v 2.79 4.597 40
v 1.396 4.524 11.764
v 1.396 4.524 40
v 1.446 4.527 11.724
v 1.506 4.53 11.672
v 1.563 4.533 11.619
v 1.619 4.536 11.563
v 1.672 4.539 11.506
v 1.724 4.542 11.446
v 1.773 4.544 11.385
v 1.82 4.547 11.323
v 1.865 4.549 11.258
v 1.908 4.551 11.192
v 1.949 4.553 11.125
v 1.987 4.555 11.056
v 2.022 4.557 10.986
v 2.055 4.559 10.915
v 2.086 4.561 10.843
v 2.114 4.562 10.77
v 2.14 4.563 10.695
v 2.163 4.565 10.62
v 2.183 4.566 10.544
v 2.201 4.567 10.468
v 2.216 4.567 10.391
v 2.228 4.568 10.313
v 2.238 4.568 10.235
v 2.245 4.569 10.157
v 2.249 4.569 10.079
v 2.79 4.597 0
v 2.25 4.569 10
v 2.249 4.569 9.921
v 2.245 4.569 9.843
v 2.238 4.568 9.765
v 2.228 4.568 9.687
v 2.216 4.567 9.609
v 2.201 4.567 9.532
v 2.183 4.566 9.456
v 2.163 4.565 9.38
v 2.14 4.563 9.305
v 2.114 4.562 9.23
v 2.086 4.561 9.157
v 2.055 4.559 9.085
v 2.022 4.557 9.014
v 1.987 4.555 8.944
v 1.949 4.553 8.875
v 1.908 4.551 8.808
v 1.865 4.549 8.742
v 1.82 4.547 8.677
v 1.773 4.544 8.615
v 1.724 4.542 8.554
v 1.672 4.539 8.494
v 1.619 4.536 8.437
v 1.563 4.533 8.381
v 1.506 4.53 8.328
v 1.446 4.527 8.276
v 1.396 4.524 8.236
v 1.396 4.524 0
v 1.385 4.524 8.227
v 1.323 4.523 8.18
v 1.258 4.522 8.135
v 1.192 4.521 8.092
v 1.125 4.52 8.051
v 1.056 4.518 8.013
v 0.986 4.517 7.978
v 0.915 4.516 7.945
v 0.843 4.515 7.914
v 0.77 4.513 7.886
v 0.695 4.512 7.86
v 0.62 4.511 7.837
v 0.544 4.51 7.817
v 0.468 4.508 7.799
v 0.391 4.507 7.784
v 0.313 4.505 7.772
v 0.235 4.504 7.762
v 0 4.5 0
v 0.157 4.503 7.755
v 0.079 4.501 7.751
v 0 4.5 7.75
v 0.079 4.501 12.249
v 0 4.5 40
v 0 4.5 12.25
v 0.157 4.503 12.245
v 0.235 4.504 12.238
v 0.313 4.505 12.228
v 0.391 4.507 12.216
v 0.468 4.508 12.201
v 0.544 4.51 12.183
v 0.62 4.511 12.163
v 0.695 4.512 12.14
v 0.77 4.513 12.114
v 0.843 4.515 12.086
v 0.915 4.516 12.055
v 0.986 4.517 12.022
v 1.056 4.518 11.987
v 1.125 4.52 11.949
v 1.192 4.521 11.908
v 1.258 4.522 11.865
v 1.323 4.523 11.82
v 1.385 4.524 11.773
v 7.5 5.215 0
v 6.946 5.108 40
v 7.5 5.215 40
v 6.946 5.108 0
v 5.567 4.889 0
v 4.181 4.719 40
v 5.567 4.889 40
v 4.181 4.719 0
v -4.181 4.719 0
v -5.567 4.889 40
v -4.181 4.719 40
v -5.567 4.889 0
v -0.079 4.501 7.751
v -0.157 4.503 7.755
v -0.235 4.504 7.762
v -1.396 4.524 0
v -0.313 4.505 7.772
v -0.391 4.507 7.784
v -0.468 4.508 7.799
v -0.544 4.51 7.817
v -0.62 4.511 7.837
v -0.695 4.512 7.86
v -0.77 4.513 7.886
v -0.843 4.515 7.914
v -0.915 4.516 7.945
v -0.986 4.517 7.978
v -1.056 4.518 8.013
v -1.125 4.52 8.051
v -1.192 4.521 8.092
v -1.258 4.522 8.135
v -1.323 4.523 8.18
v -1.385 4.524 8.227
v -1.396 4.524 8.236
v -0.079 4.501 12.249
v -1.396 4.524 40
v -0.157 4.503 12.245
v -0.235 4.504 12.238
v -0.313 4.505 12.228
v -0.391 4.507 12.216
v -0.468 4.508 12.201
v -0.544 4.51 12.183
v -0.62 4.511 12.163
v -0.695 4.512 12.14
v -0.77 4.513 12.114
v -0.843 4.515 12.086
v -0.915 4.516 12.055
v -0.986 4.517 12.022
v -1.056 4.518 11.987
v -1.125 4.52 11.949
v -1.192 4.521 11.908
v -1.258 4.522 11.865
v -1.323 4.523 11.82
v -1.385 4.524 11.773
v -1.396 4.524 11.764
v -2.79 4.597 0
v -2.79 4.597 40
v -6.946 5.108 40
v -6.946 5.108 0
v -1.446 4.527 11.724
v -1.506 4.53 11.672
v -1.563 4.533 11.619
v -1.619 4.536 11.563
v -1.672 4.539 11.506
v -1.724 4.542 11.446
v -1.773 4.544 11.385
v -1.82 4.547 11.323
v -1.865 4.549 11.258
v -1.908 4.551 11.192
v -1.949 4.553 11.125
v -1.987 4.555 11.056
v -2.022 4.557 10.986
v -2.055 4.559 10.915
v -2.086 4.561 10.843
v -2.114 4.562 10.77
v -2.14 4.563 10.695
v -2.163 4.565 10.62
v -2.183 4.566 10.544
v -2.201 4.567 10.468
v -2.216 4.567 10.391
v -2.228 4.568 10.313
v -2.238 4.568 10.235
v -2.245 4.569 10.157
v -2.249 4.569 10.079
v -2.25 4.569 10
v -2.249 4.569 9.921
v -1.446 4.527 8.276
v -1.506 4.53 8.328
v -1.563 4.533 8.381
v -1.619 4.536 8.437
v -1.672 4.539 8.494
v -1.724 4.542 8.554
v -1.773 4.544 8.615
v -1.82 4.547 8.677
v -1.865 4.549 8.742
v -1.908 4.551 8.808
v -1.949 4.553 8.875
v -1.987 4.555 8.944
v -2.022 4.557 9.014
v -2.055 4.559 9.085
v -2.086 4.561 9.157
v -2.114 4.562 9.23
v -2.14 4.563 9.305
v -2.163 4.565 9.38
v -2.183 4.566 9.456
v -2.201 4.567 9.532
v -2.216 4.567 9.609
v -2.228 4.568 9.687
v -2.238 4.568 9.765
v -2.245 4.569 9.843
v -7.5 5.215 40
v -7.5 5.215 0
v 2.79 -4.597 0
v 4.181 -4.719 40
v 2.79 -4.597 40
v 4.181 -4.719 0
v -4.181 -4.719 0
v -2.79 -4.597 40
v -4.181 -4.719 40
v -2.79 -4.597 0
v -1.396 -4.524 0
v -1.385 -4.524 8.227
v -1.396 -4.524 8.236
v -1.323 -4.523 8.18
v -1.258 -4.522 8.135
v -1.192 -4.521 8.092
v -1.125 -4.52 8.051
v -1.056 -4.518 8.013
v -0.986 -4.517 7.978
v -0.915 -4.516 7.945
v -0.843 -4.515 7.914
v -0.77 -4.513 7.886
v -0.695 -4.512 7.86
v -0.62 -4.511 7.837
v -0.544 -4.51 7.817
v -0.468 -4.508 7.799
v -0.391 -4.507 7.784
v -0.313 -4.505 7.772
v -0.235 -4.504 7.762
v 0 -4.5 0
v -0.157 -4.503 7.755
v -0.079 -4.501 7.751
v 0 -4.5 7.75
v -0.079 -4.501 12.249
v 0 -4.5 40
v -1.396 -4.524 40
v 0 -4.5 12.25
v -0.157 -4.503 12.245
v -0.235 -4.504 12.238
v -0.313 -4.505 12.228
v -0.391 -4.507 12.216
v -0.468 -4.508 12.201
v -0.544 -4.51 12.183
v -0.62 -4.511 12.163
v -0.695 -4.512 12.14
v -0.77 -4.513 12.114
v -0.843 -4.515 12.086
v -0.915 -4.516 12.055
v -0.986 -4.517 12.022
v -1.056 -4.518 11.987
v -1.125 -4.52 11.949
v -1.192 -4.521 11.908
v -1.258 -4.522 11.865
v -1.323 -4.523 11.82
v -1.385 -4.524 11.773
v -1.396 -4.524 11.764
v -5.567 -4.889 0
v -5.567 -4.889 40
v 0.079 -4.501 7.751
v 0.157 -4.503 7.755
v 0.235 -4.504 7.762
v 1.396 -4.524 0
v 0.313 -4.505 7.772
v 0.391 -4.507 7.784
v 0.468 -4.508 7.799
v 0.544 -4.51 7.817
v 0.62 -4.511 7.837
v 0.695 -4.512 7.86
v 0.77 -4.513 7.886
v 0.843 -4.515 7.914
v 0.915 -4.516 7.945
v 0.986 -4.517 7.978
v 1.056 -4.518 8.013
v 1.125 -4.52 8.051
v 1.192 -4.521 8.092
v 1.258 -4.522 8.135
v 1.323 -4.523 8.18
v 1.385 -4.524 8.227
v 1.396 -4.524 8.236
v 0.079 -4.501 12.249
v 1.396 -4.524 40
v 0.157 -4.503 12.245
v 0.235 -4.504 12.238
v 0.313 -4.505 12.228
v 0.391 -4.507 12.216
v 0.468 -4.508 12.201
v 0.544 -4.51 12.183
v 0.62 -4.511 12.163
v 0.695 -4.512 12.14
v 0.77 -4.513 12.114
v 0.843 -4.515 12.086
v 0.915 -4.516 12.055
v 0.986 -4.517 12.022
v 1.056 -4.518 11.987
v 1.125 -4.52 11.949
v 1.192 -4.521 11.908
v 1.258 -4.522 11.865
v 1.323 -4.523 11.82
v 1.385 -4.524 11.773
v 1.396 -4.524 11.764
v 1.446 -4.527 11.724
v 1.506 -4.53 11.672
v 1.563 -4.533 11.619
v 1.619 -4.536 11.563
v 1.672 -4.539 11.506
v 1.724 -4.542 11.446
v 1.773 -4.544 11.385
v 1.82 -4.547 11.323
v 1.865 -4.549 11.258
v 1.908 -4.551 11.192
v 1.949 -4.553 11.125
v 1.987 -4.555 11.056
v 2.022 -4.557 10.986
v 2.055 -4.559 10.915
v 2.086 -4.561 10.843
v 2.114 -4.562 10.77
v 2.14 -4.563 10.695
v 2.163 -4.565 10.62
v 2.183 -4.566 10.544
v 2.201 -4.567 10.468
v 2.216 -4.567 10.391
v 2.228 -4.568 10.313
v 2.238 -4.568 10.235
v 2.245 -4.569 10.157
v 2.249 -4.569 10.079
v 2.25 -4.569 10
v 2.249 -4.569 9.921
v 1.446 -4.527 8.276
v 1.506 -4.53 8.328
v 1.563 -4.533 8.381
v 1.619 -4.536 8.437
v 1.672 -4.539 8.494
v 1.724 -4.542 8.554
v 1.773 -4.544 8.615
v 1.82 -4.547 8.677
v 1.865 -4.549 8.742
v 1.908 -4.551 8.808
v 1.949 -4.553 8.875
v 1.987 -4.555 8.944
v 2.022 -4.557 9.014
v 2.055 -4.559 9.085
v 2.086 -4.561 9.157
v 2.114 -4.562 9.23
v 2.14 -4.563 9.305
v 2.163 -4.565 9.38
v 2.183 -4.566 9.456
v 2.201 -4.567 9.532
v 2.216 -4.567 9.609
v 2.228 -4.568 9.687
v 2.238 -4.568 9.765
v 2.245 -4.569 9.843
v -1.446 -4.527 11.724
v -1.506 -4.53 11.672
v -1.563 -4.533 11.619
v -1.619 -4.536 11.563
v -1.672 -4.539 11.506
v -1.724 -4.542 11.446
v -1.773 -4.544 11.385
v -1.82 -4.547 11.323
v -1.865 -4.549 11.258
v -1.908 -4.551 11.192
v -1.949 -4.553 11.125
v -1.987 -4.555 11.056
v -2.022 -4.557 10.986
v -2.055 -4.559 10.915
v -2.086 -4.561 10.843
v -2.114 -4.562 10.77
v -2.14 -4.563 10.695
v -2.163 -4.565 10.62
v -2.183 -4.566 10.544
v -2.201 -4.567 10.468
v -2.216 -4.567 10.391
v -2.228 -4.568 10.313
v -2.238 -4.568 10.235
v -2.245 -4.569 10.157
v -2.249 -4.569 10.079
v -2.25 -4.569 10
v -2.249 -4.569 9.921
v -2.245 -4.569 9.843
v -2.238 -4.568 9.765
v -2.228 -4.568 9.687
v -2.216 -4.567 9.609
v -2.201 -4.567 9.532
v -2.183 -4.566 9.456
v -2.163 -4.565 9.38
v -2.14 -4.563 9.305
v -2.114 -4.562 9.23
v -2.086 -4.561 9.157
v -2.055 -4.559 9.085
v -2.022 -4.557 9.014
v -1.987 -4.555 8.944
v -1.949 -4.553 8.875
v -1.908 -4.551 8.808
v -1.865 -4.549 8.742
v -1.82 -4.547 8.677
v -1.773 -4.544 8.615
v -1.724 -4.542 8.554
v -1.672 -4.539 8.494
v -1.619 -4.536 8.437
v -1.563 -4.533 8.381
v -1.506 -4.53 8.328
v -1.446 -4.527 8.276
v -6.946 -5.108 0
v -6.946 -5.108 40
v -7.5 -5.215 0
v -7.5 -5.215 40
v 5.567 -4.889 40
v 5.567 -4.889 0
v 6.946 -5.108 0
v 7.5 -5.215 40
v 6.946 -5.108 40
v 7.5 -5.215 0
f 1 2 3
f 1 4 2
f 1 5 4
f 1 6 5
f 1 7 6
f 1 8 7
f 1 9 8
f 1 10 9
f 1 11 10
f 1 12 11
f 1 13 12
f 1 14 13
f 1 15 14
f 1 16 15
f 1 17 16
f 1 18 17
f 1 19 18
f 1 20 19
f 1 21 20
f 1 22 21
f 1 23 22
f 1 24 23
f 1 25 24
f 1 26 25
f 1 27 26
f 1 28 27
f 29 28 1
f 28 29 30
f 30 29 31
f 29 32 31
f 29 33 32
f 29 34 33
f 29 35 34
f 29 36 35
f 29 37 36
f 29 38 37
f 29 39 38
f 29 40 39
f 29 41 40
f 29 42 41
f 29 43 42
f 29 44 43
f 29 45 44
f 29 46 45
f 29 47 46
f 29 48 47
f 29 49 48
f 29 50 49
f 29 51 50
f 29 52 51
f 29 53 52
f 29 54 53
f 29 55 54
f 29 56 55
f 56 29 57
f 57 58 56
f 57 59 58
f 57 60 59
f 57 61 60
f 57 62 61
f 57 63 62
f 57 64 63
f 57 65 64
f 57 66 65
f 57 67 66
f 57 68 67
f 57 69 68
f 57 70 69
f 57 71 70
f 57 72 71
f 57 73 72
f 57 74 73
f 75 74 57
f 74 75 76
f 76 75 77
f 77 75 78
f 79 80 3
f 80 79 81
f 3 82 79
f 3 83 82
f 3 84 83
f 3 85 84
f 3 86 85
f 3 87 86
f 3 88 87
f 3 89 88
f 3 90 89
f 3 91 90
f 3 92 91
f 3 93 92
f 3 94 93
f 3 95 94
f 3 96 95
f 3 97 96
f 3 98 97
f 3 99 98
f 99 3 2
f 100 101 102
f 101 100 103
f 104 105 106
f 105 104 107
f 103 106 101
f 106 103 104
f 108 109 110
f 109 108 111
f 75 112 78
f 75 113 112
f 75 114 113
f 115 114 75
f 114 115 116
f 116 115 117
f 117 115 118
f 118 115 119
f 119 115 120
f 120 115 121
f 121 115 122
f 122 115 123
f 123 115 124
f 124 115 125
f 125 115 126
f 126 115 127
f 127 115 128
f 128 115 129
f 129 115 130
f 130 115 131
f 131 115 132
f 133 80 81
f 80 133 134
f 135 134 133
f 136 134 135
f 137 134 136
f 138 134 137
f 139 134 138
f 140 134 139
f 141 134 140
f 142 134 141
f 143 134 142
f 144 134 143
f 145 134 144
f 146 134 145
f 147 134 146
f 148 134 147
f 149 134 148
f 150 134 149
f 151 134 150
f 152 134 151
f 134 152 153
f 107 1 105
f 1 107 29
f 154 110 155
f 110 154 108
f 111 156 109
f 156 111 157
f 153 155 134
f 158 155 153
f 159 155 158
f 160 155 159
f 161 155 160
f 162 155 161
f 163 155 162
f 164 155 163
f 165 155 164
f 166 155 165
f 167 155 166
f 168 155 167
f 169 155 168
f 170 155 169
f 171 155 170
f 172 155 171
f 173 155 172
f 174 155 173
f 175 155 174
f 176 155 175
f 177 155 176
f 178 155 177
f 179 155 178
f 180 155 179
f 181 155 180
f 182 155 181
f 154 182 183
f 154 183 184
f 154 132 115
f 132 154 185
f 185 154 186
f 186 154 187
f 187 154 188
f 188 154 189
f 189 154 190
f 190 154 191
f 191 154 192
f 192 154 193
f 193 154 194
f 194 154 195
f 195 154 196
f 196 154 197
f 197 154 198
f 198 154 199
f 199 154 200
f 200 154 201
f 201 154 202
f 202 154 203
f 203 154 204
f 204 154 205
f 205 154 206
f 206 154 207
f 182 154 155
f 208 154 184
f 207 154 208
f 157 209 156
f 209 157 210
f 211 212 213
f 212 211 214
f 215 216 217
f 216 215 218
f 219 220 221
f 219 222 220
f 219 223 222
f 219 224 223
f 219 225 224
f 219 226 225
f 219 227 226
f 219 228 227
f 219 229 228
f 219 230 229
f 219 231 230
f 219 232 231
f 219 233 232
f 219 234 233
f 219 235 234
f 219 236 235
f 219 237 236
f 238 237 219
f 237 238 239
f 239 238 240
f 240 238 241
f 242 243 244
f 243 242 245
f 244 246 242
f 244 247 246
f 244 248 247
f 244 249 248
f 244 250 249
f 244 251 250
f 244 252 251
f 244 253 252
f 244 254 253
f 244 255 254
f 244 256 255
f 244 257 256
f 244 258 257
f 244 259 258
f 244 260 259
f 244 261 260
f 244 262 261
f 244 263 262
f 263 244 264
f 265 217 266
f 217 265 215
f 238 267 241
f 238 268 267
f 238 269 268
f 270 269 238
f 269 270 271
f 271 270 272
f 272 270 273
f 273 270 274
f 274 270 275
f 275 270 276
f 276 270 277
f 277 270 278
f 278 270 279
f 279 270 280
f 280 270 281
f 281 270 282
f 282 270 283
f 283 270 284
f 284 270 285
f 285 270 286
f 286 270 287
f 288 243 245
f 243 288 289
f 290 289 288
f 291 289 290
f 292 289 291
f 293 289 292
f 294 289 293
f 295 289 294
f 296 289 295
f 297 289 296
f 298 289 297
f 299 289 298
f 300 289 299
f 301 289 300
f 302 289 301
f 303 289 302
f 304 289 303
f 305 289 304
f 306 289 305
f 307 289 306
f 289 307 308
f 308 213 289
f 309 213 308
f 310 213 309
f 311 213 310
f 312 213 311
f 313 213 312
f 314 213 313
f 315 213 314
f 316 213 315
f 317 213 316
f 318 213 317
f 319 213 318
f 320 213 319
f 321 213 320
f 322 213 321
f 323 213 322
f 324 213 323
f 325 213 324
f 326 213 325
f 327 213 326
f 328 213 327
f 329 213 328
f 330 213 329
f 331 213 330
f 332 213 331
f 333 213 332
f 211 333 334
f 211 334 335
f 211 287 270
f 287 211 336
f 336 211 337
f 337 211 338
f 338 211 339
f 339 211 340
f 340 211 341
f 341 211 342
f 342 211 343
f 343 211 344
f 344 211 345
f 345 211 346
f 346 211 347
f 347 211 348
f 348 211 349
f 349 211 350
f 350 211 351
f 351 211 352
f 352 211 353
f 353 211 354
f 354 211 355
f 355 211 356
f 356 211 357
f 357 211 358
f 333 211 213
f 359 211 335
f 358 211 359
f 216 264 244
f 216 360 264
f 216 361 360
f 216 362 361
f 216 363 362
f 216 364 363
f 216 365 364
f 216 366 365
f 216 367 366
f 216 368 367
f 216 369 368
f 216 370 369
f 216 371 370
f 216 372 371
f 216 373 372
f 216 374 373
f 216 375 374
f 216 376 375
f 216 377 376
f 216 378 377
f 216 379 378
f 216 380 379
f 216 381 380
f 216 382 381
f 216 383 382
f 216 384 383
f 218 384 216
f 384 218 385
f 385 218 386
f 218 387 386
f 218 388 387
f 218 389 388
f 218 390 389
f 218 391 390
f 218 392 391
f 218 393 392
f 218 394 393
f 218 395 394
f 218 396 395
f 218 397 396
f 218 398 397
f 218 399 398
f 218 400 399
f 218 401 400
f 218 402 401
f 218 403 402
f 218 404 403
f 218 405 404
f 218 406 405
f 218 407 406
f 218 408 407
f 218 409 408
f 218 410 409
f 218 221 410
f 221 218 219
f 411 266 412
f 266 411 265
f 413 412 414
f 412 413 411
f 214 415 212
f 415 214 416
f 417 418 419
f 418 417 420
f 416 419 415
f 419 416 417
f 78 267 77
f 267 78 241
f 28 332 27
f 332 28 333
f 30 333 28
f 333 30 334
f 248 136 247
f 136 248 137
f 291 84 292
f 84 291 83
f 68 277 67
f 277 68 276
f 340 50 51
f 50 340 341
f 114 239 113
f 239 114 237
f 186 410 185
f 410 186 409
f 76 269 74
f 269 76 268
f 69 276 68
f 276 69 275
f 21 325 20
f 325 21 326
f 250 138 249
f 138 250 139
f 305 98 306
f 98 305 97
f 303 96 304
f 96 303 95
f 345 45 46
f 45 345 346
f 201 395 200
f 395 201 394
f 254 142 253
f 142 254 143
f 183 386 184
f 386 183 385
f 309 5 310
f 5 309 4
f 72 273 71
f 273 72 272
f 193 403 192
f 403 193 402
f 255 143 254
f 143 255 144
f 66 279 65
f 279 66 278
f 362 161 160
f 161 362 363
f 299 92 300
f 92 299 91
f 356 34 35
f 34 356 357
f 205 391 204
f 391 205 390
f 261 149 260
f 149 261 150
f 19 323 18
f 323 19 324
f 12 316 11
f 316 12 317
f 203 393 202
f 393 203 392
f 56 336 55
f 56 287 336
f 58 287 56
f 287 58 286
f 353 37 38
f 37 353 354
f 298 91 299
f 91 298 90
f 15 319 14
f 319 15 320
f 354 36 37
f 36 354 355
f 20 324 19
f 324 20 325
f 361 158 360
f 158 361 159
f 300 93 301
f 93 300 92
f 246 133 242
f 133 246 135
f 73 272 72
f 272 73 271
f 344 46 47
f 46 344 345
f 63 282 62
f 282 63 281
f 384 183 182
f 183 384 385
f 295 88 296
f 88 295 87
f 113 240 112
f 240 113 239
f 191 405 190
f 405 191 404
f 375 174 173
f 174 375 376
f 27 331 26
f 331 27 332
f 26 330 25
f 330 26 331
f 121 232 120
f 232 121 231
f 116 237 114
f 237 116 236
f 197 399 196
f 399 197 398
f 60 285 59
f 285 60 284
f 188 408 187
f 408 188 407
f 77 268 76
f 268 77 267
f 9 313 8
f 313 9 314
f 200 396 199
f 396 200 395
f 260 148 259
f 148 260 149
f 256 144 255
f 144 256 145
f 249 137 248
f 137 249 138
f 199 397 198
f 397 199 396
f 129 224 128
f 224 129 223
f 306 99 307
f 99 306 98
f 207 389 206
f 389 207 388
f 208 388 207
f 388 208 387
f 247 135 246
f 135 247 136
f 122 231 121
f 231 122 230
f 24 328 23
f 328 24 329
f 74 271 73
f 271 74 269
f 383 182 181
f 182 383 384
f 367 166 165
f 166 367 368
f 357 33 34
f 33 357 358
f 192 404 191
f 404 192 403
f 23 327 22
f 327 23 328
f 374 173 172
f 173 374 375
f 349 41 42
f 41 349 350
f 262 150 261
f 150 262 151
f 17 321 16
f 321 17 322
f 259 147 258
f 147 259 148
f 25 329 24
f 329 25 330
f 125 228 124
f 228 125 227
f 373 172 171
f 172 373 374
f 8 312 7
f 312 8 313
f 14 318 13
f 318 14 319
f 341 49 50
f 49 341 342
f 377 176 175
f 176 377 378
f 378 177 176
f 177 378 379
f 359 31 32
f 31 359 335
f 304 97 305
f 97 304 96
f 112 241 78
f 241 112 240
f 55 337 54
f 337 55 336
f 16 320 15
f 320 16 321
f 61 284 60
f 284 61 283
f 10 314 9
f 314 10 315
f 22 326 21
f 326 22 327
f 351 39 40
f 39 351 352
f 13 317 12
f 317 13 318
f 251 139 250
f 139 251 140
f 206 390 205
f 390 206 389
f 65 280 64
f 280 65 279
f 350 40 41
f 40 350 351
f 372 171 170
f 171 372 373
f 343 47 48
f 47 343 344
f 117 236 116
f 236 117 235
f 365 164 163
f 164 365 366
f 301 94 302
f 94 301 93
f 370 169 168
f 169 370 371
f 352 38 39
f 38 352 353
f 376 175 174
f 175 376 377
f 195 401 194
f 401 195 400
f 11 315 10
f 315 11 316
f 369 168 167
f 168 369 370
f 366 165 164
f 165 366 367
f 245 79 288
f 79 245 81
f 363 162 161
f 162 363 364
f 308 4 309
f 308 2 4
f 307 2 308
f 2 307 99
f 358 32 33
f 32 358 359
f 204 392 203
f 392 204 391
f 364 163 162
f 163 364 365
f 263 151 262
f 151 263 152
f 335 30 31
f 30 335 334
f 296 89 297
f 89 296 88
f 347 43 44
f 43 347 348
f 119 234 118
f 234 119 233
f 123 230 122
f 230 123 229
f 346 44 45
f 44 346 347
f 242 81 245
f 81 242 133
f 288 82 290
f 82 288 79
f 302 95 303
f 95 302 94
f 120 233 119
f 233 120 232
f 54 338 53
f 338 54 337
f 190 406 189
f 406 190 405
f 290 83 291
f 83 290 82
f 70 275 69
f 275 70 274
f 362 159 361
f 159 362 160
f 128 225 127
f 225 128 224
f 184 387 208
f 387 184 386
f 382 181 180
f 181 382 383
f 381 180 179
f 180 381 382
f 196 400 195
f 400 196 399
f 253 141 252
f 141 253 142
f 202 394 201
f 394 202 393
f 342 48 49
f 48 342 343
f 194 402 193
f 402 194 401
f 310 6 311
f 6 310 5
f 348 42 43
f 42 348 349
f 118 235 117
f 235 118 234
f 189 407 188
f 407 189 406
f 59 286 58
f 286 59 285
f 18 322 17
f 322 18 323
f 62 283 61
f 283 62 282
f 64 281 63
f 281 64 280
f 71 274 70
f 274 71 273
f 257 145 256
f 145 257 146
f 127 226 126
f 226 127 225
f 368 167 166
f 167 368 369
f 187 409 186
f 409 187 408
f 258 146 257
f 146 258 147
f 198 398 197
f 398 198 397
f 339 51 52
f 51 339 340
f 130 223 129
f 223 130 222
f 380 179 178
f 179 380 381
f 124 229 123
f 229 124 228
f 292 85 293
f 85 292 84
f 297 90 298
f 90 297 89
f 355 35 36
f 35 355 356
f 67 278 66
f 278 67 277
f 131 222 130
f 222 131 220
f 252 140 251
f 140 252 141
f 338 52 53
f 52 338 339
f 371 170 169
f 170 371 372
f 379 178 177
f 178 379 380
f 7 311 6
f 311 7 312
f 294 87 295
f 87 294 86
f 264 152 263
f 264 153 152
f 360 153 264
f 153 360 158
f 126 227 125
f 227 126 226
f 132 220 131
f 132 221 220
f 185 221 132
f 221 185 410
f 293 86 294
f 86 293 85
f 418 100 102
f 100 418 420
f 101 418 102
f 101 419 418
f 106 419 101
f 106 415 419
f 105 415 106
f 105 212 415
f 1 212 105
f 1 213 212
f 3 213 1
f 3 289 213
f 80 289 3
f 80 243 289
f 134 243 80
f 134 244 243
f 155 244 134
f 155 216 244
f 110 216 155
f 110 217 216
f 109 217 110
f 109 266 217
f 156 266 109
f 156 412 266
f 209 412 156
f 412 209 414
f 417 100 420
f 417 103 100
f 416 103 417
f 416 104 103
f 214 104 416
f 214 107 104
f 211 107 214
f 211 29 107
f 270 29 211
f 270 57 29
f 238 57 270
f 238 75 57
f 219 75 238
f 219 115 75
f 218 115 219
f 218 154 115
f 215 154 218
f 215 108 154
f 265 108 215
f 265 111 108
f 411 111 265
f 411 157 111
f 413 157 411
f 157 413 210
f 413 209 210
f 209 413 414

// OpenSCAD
$fn = 180;

difference() {
    union() {
        translate([0,0,20]) cube([15,15,40], true);
        
    }
    union() {
        translate([0,44.5,-1]) cylinder(50, 40, 40);
        translate([0,-44.5,-1]) cylinder(50, 40, 40);
        translate([0,25,10]) rotate(a=[90,0,0]) cylinder(50, 2.25, 2.25);
        /* translate([-24,0,51.5]) rotate(a=[0,90,0]) cylinder(50, 40, 40);
        translate([-26,0,51.5]) rotate(a=[0,90,0]) cylinder(r=50, h=11, $fn=6);
        translate([-26,0,2]) rotate(a=[0,90,0]) cylinder(11, 0.75, 0.75); */
    }
}
